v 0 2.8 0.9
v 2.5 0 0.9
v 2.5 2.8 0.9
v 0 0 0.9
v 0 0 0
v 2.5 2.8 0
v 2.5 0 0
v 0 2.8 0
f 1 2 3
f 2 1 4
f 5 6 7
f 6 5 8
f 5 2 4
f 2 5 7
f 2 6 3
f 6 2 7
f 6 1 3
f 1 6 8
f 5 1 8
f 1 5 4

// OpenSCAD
/* Warning, this is a very basic generator with a lot of approximation 
input data : [VQFN, MTA, 2.5x2.8x0.9mm, 17, , A, C04-01012A]
generated by com.zoubworld.electronics.cad.model3d.Basic
Date : Sun Feb 15 10:50:49 CET 2026
*/

//body
color("black")
translate([0,0,0])
cube([2.5,2.8,0.9], center=false);
